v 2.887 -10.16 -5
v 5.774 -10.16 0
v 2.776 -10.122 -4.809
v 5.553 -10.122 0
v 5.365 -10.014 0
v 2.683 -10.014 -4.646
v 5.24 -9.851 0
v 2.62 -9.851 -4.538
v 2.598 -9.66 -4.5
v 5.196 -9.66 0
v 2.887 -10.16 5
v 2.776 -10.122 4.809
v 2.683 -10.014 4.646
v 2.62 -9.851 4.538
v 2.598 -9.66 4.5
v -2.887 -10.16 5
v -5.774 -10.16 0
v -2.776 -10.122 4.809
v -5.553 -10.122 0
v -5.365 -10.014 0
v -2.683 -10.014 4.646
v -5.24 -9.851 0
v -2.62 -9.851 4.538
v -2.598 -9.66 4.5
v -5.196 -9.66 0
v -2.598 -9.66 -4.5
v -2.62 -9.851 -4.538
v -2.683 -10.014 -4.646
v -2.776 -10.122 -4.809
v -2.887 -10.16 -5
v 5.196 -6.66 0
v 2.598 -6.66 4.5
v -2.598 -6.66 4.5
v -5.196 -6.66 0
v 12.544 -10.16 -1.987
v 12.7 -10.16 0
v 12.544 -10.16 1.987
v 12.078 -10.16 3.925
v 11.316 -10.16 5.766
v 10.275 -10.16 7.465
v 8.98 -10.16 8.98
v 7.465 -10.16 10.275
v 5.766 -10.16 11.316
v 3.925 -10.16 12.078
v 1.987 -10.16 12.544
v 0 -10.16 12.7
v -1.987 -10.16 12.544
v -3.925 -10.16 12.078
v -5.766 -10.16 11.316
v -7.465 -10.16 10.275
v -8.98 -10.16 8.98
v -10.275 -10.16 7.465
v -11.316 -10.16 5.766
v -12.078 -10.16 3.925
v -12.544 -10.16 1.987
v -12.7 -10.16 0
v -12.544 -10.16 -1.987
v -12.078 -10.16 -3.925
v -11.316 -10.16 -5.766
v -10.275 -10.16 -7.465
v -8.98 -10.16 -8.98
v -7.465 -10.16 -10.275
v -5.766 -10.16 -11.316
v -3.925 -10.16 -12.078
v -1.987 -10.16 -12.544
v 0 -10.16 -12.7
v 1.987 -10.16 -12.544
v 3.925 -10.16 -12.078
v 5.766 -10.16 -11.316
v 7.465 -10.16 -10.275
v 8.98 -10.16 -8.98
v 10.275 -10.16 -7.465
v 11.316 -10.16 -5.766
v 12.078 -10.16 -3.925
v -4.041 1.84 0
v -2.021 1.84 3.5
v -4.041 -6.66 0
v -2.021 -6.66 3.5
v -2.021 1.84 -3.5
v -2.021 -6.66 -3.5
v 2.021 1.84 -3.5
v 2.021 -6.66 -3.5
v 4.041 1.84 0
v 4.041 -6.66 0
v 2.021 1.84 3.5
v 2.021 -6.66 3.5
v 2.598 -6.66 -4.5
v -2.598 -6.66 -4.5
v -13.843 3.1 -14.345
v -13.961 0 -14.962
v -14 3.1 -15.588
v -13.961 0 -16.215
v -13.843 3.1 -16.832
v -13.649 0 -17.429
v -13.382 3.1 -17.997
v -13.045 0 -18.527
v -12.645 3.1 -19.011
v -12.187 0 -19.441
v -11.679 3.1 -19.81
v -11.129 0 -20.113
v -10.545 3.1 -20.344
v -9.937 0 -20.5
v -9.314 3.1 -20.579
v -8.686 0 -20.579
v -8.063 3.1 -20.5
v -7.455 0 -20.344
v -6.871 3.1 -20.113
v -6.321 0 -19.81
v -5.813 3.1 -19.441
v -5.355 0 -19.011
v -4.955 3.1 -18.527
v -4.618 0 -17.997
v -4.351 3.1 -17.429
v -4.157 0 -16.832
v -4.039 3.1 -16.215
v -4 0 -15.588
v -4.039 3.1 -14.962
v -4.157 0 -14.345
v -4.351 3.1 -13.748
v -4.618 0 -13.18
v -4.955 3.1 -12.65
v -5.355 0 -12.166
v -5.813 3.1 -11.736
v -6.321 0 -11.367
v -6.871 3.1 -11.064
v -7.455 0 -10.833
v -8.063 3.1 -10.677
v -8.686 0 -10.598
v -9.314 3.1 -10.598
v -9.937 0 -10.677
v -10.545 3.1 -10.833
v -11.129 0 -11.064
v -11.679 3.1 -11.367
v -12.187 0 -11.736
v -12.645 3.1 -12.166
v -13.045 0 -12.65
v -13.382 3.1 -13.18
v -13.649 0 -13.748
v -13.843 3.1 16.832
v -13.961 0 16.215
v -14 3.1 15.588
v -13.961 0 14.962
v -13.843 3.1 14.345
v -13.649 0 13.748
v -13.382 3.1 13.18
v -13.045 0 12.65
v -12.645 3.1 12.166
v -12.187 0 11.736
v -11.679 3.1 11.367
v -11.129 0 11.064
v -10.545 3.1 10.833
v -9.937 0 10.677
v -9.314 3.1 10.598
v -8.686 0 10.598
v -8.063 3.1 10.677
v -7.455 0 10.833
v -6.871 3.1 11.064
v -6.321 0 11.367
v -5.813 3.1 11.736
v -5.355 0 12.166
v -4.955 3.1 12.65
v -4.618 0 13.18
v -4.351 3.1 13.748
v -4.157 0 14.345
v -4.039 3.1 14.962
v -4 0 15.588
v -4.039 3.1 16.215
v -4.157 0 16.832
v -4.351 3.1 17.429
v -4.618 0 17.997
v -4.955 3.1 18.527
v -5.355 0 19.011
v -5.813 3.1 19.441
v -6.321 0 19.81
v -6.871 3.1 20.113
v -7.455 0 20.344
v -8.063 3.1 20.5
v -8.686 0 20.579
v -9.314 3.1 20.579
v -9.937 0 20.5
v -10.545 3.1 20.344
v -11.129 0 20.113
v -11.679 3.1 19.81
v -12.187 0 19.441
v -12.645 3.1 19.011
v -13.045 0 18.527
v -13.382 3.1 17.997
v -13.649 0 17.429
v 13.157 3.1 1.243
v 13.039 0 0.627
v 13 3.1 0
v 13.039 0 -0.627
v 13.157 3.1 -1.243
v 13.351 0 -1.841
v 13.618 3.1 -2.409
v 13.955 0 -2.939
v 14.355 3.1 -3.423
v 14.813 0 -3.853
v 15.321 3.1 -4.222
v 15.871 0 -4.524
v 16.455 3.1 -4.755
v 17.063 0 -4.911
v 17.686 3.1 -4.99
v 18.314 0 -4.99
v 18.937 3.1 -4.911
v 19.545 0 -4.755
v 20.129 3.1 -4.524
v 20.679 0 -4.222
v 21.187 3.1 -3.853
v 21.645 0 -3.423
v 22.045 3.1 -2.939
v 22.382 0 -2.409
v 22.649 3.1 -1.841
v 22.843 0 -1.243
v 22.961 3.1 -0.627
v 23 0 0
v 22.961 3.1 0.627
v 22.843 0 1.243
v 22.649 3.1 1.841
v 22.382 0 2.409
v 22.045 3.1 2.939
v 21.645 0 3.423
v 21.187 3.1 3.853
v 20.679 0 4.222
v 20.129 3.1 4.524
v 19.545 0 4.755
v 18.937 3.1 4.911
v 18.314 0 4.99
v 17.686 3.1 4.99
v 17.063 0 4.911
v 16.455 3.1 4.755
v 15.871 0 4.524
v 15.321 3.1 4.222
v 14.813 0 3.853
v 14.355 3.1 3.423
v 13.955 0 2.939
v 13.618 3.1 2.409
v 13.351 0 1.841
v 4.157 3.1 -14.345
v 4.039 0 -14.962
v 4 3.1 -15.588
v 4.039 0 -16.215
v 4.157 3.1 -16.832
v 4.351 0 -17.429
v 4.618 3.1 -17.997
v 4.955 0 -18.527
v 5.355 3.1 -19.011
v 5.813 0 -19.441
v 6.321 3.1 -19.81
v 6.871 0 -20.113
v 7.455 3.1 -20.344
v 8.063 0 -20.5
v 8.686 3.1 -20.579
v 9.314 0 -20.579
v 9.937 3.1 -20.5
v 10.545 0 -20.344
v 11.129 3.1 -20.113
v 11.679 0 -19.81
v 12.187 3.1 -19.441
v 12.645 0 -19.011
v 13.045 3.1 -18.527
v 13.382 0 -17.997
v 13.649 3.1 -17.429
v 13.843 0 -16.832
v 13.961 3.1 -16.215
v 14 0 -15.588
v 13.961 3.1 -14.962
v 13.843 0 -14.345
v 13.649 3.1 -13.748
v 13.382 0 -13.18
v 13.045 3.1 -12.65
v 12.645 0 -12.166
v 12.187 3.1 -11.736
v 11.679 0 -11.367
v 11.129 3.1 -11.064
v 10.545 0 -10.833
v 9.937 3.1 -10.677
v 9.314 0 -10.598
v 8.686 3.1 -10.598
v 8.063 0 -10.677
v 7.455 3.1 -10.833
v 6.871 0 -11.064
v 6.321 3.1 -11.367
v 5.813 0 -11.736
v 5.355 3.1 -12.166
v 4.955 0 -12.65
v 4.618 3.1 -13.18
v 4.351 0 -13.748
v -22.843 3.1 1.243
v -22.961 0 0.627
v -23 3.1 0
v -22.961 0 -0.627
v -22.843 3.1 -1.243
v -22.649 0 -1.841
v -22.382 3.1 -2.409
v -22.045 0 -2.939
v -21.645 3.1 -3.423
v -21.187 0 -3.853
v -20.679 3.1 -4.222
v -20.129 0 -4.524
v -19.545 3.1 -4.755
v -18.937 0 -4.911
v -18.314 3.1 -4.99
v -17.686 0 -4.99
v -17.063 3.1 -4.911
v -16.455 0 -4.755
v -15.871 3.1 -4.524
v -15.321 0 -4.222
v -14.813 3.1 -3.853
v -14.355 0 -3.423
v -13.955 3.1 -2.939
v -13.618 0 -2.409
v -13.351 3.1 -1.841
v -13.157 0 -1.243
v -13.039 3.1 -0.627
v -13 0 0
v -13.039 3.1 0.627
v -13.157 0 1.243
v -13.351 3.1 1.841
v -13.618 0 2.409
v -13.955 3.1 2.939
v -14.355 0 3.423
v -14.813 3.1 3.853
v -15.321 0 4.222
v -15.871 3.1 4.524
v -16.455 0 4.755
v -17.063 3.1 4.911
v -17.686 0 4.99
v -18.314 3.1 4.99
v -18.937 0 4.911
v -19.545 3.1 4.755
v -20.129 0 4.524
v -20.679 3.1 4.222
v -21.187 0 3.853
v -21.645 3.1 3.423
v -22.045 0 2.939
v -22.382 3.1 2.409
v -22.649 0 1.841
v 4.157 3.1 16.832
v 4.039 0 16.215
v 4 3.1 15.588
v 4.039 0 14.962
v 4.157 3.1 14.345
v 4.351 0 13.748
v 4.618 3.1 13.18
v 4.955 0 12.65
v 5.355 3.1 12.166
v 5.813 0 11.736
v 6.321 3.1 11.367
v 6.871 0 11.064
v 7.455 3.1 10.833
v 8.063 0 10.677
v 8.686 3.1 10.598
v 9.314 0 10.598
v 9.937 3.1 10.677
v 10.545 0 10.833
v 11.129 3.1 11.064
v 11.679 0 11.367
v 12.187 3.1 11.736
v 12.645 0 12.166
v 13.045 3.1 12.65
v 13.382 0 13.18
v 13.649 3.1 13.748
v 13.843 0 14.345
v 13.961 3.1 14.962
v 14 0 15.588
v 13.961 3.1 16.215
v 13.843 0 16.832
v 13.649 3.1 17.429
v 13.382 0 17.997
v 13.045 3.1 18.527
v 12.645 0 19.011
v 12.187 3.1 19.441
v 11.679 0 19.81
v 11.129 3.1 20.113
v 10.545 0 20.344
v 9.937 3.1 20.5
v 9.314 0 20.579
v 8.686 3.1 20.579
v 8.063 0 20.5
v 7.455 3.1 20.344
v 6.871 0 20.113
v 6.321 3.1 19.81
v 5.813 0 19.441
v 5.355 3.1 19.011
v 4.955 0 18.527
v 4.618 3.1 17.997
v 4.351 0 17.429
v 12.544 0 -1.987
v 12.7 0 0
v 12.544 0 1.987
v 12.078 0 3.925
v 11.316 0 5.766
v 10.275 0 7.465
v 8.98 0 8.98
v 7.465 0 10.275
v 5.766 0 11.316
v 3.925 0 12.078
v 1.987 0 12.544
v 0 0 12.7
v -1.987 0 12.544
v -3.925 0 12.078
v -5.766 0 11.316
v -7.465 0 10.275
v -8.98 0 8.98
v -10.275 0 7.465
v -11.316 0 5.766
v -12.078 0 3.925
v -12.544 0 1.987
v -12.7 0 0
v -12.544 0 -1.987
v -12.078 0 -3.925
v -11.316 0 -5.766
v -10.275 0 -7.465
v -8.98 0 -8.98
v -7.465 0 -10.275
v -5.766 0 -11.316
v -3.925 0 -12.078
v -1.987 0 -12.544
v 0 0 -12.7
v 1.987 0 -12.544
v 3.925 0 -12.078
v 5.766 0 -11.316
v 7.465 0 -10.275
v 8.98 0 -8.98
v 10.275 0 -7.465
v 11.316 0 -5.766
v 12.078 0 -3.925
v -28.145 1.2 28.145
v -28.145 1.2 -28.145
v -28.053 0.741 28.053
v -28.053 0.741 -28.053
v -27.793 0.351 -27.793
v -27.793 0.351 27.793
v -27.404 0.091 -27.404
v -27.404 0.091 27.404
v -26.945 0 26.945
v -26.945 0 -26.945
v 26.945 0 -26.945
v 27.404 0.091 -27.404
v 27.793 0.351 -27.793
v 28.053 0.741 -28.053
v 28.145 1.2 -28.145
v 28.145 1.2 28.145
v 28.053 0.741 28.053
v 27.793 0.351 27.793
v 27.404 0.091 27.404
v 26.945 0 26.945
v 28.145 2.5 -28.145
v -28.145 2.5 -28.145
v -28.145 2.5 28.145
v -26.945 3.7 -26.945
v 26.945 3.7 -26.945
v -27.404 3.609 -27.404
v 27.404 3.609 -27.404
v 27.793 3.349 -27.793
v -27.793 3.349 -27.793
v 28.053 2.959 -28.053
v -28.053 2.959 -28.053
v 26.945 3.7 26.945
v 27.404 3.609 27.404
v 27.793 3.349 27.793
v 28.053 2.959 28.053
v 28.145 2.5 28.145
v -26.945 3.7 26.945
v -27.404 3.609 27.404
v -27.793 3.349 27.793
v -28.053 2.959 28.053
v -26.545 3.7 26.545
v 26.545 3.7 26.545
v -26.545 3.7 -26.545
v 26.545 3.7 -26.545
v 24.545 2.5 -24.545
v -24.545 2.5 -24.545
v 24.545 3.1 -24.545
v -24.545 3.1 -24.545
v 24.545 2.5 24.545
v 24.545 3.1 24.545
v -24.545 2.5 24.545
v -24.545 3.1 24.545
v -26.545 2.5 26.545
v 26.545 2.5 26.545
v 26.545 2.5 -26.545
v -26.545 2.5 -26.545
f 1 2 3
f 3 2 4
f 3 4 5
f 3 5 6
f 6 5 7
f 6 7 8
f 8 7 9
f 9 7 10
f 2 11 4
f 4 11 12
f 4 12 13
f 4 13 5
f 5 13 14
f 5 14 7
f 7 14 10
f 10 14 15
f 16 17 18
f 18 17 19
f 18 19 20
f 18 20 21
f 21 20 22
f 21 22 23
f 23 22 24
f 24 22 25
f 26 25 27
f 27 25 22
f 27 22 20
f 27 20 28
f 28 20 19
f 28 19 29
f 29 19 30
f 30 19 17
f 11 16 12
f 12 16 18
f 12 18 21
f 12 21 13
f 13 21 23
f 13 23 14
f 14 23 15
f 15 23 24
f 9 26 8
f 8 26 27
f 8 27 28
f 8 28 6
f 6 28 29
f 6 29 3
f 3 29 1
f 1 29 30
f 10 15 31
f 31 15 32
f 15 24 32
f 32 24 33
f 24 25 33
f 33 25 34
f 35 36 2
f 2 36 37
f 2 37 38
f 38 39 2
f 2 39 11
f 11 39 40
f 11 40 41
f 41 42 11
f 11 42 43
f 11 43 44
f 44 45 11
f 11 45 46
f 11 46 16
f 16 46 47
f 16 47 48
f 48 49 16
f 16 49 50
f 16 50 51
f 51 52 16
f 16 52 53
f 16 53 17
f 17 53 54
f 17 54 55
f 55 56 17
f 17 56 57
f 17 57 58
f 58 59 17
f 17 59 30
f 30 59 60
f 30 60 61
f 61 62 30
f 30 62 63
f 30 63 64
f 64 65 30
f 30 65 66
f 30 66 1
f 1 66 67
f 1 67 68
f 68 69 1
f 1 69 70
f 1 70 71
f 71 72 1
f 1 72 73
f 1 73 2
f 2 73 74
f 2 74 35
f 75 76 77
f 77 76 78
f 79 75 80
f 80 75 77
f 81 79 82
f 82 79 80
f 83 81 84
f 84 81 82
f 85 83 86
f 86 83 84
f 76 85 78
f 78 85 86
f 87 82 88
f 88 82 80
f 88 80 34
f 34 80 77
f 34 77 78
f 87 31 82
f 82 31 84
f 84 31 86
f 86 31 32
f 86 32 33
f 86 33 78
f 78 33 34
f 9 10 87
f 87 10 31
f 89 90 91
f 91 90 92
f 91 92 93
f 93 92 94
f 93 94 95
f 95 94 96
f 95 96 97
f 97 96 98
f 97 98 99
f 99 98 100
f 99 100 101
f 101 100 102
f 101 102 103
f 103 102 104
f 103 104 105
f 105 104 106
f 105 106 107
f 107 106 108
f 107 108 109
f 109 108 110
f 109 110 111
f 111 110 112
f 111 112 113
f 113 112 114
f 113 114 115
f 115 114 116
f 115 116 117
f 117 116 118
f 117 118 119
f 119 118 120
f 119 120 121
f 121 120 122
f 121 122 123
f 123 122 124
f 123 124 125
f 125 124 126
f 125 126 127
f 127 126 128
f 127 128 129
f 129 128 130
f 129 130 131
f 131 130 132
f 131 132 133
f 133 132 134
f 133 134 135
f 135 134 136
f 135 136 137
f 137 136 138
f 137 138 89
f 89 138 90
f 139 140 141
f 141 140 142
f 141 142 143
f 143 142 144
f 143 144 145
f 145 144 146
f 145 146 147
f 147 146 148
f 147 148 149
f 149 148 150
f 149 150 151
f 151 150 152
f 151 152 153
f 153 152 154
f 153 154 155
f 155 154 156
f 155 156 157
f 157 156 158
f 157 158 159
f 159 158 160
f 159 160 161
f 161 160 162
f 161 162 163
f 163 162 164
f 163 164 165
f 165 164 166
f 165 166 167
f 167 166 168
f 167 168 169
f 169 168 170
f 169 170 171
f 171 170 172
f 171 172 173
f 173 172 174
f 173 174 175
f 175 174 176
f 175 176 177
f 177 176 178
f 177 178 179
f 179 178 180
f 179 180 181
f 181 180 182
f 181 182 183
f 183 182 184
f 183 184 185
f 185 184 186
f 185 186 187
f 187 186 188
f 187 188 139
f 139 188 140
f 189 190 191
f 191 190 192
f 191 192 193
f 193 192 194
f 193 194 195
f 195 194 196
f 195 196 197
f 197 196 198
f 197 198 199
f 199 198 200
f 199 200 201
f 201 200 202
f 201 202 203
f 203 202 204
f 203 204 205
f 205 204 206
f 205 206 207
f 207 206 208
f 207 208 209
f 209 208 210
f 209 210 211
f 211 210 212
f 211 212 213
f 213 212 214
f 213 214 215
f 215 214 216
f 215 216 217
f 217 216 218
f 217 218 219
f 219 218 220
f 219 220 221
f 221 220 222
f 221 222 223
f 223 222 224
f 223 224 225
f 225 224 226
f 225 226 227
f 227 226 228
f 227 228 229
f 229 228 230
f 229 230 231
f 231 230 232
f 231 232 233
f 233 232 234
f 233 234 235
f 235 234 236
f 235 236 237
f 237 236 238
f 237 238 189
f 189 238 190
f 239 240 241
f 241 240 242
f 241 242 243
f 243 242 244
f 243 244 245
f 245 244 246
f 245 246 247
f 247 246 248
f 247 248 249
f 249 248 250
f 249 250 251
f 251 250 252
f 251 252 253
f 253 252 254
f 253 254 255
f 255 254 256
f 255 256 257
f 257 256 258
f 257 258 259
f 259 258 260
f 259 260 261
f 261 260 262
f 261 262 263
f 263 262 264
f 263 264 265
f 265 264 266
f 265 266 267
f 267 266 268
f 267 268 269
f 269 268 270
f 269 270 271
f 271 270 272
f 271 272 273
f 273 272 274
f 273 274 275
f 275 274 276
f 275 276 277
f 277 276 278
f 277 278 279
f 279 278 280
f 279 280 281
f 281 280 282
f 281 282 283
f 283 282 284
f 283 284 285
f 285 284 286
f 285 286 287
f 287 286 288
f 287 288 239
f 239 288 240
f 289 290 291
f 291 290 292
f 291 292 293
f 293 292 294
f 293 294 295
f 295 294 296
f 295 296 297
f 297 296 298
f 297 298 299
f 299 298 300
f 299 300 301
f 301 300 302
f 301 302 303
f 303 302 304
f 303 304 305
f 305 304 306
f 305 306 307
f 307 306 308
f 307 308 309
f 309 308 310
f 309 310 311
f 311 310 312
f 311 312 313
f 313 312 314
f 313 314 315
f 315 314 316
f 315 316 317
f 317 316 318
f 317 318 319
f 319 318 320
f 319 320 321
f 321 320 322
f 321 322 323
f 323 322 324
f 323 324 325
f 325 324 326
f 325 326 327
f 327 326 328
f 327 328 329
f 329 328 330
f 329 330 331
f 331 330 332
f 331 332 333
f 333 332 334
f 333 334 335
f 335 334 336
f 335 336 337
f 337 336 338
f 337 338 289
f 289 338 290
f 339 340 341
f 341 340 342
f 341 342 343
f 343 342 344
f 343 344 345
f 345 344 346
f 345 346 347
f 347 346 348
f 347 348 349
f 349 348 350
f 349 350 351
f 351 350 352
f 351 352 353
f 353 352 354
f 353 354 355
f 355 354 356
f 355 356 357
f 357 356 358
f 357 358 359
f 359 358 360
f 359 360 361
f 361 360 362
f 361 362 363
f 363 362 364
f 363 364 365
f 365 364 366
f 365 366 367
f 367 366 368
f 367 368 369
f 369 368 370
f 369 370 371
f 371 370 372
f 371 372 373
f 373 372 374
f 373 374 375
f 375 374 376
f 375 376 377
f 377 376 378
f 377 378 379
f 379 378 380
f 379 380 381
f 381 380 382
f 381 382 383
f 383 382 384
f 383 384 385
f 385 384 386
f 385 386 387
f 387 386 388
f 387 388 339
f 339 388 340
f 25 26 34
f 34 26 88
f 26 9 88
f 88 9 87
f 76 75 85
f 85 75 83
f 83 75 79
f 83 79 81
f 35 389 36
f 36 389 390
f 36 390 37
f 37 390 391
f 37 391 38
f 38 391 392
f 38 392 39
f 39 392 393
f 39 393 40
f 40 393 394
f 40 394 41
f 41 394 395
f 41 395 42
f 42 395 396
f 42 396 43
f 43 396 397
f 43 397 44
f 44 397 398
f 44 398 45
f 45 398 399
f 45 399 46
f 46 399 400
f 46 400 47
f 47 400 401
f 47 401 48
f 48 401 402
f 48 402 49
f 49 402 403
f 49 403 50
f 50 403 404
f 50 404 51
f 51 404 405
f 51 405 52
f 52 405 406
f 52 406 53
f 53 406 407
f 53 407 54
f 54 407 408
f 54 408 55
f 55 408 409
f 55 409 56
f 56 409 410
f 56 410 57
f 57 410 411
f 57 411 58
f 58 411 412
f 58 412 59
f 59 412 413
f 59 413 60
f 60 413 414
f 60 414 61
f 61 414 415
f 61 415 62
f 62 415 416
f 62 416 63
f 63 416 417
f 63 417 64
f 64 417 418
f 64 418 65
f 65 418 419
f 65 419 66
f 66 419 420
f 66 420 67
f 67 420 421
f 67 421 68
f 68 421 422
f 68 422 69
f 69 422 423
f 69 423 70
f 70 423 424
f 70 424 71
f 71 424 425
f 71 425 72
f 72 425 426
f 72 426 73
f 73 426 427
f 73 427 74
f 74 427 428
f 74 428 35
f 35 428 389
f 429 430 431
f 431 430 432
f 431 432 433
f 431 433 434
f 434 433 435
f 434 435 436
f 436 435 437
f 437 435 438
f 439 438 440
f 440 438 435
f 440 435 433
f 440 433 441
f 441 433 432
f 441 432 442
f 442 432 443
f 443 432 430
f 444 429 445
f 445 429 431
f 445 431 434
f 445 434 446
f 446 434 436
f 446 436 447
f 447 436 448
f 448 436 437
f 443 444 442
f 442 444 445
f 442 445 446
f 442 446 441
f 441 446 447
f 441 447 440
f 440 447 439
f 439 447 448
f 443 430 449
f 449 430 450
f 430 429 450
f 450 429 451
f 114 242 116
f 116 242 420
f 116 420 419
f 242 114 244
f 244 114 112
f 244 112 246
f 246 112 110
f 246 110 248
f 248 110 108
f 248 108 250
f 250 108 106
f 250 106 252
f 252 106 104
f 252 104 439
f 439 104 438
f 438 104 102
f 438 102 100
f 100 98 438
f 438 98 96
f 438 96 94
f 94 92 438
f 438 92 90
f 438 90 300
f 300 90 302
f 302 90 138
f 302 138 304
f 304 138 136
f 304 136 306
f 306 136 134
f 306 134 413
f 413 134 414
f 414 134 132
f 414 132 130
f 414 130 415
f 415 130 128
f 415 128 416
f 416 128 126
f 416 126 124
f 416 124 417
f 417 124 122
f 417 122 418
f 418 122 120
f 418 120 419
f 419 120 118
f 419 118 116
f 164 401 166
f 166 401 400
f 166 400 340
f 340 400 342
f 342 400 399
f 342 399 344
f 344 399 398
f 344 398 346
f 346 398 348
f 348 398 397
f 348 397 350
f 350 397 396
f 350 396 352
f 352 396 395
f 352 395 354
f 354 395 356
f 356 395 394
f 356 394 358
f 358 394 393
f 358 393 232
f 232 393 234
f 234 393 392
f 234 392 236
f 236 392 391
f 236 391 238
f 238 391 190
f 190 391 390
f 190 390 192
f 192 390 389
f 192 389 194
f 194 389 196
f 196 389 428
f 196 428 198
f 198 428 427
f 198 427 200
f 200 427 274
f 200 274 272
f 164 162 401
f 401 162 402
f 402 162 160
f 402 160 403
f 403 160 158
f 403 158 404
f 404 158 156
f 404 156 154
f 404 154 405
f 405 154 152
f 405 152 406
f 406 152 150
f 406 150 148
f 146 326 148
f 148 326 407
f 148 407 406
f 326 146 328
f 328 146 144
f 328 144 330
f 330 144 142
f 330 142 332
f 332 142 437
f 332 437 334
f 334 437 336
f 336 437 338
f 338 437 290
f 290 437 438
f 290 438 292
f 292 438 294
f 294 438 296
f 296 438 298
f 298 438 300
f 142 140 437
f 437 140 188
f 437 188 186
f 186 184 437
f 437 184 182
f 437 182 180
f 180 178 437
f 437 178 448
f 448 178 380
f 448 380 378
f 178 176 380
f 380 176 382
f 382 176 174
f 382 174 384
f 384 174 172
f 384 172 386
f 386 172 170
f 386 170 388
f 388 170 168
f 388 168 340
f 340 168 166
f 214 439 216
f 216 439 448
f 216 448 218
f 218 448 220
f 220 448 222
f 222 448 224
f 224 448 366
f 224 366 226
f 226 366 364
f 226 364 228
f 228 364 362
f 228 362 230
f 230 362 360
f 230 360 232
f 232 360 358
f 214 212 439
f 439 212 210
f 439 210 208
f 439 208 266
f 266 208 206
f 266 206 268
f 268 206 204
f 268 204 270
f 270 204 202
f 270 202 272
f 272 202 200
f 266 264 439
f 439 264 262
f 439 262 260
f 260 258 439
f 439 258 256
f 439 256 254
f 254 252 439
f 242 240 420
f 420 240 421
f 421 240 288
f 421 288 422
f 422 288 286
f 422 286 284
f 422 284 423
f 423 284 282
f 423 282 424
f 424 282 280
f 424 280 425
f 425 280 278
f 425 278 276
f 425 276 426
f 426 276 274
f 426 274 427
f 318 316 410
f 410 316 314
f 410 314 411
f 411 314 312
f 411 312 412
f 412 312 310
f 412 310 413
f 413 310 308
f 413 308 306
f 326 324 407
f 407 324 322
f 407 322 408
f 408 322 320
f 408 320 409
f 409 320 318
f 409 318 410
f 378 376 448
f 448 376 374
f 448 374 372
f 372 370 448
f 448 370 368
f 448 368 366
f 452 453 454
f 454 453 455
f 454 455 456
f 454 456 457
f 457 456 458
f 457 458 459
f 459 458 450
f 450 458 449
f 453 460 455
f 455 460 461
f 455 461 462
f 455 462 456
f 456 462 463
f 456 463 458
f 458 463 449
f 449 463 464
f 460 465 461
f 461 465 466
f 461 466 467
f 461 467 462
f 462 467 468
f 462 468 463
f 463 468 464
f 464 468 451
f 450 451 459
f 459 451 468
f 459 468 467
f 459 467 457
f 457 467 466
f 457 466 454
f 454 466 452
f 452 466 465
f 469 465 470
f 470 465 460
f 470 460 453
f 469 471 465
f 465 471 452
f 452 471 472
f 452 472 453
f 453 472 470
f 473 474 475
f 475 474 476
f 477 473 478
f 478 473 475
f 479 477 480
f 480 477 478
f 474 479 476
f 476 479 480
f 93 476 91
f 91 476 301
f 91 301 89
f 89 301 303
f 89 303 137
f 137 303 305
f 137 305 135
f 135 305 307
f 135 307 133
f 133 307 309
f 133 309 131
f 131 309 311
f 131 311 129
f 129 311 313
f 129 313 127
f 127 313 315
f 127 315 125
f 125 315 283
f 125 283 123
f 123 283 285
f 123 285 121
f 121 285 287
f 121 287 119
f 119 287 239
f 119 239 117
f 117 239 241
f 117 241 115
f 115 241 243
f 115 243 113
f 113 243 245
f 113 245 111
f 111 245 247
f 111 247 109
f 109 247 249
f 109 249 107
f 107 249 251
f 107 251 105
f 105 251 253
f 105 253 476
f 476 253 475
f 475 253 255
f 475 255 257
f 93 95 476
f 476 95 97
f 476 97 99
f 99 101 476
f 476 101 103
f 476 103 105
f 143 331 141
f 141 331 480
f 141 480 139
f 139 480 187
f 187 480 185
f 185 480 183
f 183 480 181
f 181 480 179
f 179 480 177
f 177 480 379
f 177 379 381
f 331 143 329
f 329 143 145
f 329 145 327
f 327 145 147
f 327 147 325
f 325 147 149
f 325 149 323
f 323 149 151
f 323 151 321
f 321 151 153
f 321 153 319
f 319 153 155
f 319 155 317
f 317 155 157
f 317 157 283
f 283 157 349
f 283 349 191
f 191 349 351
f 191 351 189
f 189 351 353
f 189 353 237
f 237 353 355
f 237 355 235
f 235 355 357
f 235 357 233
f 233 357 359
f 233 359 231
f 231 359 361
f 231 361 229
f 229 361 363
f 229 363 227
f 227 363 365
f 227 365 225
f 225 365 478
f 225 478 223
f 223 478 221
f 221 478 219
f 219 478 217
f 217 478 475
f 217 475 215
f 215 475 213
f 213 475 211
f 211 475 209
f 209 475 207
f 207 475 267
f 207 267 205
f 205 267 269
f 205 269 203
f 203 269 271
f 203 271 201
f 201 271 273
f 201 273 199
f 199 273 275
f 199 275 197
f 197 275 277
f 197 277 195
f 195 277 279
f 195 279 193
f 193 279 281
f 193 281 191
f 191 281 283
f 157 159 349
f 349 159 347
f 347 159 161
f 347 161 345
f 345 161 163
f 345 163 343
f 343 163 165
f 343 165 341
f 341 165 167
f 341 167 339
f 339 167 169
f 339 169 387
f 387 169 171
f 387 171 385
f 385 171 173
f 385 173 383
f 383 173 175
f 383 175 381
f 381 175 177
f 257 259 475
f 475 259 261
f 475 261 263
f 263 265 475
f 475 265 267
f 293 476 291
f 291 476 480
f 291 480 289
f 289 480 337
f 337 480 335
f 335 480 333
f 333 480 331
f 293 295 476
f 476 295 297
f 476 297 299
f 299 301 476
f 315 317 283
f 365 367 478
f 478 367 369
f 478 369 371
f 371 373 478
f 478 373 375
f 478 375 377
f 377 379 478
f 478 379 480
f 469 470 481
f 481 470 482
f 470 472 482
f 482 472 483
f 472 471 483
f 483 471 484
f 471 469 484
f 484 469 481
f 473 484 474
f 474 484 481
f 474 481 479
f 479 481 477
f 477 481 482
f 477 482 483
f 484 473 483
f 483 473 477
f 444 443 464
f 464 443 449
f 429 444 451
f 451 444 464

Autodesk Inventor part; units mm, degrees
ref_plane "YZ Plane" through (0, 0, 0) normal (1, 0, 0) x (0, 1, 0)
ref_plane "XZ Plane" through (0, 0, 0) normal (0, 1, 0) x (-1, 0, 0)
ref_plane "XY Plane" through (0, 0, 0) normal (0, 0, 1) x (1, 0, 0)
sketch "스케치1" plane through (0, 0, 0) normal (0, 1, 0) x (-1, 0, 0)
  line L0 (-24.9446, -24.9446) -> (24.9446, -24.9446)
  line L1 (24.9446, -24.9446) -> (24.9446, 24.9446)
  line L2 (24.9446, 24.9446) -> (-24.9446, 24.9446)
  line L3 (-24.9446, 24.9446) -> (-24.9446, -24.9446)
  line L4 (-24.9446, -24.9446) -> (24.9446, 24.9446) construction
  line L5 (24.9446, -24.9446) -> (-24.9446, 24.9446) construction
  line L6 (-28.1446, -28.1446) -> (28.1446, -28.1446)
  line L7 (28.1446, -28.1446) -> (28.1446, 28.1446)
  line L8 (28.1446, 28.1446) -> (-28.1446, 28.1446)
  line L9 (-28.1446, 28.1446) -> (-28.1446, -28.1446)
  line L10 (-28.1446, -28.1446) -> (28.1446, 28.1446) construction
  line L11 (28.1446, -28.1446) -> (-28.1446, 28.1446) construction
  point P0 (0, 0)
  dimension "d0" = 70.554
  dimension "d1" = 3.2
extrude "돌출1" add sketch "스케치1" along normal blind 3.7 contours L3 L2 L1 L0 | L9 L8 L7 L6
sketch "스케치2" plane through (0, 3.7, 0) normal (0, 1, 0) x (1, 0, 0)
  line L0 (-28.1446, 28.1446) -> (-28.1446, -28.1446) projected
  line L1 (-28.1446, -28.1446) -> (28.1446, -28.1446) projected
  line L2 (28.1446, -28.1446) -> (28.1446, 28.1446) projected
  line L3 (28.1446, 28.1446) -> (-28.1446, 28.1446) projected
  line L4 (26.5446, 26.5446) -> (-26.5446, 26.5446)
  line L5 (-26.5446, 26.5446) -> (-26.5446, -26.5446)
  line L6 (-26.5446, -26.5446) -> (26.5446, -26.5446)
  line L7 (26.5446, -26.5446) -> (26.5446, 26.5446)
  line L8 (26.5446, 26.5446) -> (-26.5446, -26.5446) construction
  line L9 (-26.5446, 26.5446) -> (26.5446, -26.5446) construction
  line L10 (24.5446, 24.5446) -> (-24.5446, 24.5446)
  line L11 (-24.5446, 24.5446) -> (-24.5446, -24.5446)
  line L12 (-24.5446, -24.5446) -> (24.5446, -24.5446)
  line L13 (24.5446, -24.5446) -> (24.5446, 24.5446)
  line L14 (24.5446, 24.5446) -> (-24.5446, -24.5446) construction
  line L15 (-24.5446, 24.5446) -> (24.5446, -24.5446) construction
  point P0 (0, 0)
  point P1 (0, 28.1446)
  point P2 (-28.1446, 0)
  dimension "d4" = 1.6
  dimension "d5" = 2
extrude "돌출2" cut sketch "스케치2" against normal blind 1.2 contours L7 L6 L5 L4 | L13 L12 L11 L10
sketch "스케치3" plane through (0, 2.5, 0) normal (0, 1, 0) x (1, 0, 0)
  line L0 (24.5446, 24.5446) -> (-24.5446, 24.5446)
  line L1 (-24.5446, 24.5446) -> (-24.5446, -24.5446)
  line L2 (-24.5446, -24.5446) -> (24.5446, -24.5446)
  line L3 (24.5446, -24.5446) -> (24.5446, 24.5446)
  line L4 (24.5446, 24.5446) -> (-24.5446, -24.5446) construction
  line L5 (-24.5446, 24.5446) -> (24.5446, -24.5446) construction
  line L6 (-26.5446, -26.5446) -> (-26.5446, 26.5446) projected
  point P0 (0, 0)
  dimension "d8" = 2
extrude "돌출3" add sketch "스케치3" along normal blind 0.6
fillet "모깎기1" radius 1.2 8 edges at (0, 3.7, 28.1446) (28.1446, 3.7, 0) (0, 3.7, -28.1446) (-28.1446, 3.7, 0) (-28.1446, 0, 0) (0, 0, 28.1446) (28.1446, 0, 0) (0, 0, -28.1446)
sketch "스케치11" plane through (0, 0, 0) normal (0, -1, 0) x (1, 0, 0)
  circle A0 centre (0, 0) radius 12.7
  dimension "d50" = 25.4
extrude "돌출11" add sketch "스케치11" along normal blind 10.16
sketch "스케치12" plane through (0, -10.16, 0) normal (0, -1, 0) x (1, 0, 0)
  circle A0 centre (0, 0) radius 4.5
  line L0 (-2.5981, 4.5) -> (2.5981, 4.5)
  line L1 (2.5981, 4.5) -> (5.1962, 0)
  line L2 (5.1962, 0) -> (2.5981, -4.5)
  line L3 (2.5981, -4.5) -> (-2.5981, -4.5)
  line L4 (-2.5981, -4.5) -> (-5.1962, 0)
  line L5 (-5.1962, 0) -> (-2.5981, 4.5)
  point P0 (-3.8971, 2.25)
  point P1 (-3.8971, -2.25)
  point P2 (0, 4.5)
  point P3 (0, -4.5)
  point P4 (3.8971, -2.25)
  point P5 (3.8971, 2.25)
  dimension "d53" = 9
extrude "돌출12" cut sketch "스케치12" against normal blind 12
sketch "스케치13" plane through (0, 0, 0) normal (0, -1, 0) x (1, 0, 0)
  circle A0 centre (-18, 0) radius 5
  circle A1 centre (-9, -15.5885) radius 5
  circle A2 centre (9, -15.5885) radius 5
  circle A3 centre (18, 0) radius 5
  circle A4 centre (9, 15.5885) radius 5
  circle A5 centre (-9, 15.5885) radius 5
  point P0 (0, 0)
  dimension "d58" = 10
  dimension "d59" = 18
  dimension "d62" = 360
extrude "돌출13" cut sketch "스케치13" against normal up to surface (3.1 mm away)
sketch "스케치16" plane through (0, 1.84, 0) normal (0, -1, 0) x (1, 0, 0)
  line L0 (-2.0207, 3.5) -> (2.0207, 3.5)
  line L1 (2.0207, 3.5) -> (4.0415, 0)
  line L2 (4.0415, 0) -> (2.0207, -3.5)
  line L3 (2.0207, -3.5) -> (-2.0207, -3.5)
  line L4 (-2.0207, -3.5) -> (-4.0415, 0)
  line L5 (-4.0415, 0) -> (-2.0207, 3.5)
  line L6 (-5.1962, 0) -> (-2.5981, 4.5) projected
  line L7 (-2.5981, 4.5) -> (2.5981, 4.5) projected
  line L8 (-5.1962, 0) -> (-2.5981, 4.5) projected
  line L9 (-2.5981, -4.5) -> (-5.1962, 0) projected
  line L10 (2.5981, -4.5) -> (-2.5981, -4.5) projected
  line L11 (5.1962, 0) -> (2.5981, -4.5) projected
  line L12 (2.5981, 4.5) -> (5.1962, 0) projected
  point P0 (0, 0)
  point P1 (0, 0)
  dimension "d84" = 1
extrude "돌출14" add sketch "스케치16" along normal blind 8.5
fillet "모깎기2" radius 0.5 6 edges at (-3.8971, -10.16, 2.25) (0, -10.16, 4.5) (3.8971, -10.16, 2.25) (3.8971, -10.16, -2.25) (0, -10.16, -4.5) (-3.8971, -10.16, -2.25)
equation "\"d73\" = 55deg"
properties part number "OV-PAM_n_4_bottom"
